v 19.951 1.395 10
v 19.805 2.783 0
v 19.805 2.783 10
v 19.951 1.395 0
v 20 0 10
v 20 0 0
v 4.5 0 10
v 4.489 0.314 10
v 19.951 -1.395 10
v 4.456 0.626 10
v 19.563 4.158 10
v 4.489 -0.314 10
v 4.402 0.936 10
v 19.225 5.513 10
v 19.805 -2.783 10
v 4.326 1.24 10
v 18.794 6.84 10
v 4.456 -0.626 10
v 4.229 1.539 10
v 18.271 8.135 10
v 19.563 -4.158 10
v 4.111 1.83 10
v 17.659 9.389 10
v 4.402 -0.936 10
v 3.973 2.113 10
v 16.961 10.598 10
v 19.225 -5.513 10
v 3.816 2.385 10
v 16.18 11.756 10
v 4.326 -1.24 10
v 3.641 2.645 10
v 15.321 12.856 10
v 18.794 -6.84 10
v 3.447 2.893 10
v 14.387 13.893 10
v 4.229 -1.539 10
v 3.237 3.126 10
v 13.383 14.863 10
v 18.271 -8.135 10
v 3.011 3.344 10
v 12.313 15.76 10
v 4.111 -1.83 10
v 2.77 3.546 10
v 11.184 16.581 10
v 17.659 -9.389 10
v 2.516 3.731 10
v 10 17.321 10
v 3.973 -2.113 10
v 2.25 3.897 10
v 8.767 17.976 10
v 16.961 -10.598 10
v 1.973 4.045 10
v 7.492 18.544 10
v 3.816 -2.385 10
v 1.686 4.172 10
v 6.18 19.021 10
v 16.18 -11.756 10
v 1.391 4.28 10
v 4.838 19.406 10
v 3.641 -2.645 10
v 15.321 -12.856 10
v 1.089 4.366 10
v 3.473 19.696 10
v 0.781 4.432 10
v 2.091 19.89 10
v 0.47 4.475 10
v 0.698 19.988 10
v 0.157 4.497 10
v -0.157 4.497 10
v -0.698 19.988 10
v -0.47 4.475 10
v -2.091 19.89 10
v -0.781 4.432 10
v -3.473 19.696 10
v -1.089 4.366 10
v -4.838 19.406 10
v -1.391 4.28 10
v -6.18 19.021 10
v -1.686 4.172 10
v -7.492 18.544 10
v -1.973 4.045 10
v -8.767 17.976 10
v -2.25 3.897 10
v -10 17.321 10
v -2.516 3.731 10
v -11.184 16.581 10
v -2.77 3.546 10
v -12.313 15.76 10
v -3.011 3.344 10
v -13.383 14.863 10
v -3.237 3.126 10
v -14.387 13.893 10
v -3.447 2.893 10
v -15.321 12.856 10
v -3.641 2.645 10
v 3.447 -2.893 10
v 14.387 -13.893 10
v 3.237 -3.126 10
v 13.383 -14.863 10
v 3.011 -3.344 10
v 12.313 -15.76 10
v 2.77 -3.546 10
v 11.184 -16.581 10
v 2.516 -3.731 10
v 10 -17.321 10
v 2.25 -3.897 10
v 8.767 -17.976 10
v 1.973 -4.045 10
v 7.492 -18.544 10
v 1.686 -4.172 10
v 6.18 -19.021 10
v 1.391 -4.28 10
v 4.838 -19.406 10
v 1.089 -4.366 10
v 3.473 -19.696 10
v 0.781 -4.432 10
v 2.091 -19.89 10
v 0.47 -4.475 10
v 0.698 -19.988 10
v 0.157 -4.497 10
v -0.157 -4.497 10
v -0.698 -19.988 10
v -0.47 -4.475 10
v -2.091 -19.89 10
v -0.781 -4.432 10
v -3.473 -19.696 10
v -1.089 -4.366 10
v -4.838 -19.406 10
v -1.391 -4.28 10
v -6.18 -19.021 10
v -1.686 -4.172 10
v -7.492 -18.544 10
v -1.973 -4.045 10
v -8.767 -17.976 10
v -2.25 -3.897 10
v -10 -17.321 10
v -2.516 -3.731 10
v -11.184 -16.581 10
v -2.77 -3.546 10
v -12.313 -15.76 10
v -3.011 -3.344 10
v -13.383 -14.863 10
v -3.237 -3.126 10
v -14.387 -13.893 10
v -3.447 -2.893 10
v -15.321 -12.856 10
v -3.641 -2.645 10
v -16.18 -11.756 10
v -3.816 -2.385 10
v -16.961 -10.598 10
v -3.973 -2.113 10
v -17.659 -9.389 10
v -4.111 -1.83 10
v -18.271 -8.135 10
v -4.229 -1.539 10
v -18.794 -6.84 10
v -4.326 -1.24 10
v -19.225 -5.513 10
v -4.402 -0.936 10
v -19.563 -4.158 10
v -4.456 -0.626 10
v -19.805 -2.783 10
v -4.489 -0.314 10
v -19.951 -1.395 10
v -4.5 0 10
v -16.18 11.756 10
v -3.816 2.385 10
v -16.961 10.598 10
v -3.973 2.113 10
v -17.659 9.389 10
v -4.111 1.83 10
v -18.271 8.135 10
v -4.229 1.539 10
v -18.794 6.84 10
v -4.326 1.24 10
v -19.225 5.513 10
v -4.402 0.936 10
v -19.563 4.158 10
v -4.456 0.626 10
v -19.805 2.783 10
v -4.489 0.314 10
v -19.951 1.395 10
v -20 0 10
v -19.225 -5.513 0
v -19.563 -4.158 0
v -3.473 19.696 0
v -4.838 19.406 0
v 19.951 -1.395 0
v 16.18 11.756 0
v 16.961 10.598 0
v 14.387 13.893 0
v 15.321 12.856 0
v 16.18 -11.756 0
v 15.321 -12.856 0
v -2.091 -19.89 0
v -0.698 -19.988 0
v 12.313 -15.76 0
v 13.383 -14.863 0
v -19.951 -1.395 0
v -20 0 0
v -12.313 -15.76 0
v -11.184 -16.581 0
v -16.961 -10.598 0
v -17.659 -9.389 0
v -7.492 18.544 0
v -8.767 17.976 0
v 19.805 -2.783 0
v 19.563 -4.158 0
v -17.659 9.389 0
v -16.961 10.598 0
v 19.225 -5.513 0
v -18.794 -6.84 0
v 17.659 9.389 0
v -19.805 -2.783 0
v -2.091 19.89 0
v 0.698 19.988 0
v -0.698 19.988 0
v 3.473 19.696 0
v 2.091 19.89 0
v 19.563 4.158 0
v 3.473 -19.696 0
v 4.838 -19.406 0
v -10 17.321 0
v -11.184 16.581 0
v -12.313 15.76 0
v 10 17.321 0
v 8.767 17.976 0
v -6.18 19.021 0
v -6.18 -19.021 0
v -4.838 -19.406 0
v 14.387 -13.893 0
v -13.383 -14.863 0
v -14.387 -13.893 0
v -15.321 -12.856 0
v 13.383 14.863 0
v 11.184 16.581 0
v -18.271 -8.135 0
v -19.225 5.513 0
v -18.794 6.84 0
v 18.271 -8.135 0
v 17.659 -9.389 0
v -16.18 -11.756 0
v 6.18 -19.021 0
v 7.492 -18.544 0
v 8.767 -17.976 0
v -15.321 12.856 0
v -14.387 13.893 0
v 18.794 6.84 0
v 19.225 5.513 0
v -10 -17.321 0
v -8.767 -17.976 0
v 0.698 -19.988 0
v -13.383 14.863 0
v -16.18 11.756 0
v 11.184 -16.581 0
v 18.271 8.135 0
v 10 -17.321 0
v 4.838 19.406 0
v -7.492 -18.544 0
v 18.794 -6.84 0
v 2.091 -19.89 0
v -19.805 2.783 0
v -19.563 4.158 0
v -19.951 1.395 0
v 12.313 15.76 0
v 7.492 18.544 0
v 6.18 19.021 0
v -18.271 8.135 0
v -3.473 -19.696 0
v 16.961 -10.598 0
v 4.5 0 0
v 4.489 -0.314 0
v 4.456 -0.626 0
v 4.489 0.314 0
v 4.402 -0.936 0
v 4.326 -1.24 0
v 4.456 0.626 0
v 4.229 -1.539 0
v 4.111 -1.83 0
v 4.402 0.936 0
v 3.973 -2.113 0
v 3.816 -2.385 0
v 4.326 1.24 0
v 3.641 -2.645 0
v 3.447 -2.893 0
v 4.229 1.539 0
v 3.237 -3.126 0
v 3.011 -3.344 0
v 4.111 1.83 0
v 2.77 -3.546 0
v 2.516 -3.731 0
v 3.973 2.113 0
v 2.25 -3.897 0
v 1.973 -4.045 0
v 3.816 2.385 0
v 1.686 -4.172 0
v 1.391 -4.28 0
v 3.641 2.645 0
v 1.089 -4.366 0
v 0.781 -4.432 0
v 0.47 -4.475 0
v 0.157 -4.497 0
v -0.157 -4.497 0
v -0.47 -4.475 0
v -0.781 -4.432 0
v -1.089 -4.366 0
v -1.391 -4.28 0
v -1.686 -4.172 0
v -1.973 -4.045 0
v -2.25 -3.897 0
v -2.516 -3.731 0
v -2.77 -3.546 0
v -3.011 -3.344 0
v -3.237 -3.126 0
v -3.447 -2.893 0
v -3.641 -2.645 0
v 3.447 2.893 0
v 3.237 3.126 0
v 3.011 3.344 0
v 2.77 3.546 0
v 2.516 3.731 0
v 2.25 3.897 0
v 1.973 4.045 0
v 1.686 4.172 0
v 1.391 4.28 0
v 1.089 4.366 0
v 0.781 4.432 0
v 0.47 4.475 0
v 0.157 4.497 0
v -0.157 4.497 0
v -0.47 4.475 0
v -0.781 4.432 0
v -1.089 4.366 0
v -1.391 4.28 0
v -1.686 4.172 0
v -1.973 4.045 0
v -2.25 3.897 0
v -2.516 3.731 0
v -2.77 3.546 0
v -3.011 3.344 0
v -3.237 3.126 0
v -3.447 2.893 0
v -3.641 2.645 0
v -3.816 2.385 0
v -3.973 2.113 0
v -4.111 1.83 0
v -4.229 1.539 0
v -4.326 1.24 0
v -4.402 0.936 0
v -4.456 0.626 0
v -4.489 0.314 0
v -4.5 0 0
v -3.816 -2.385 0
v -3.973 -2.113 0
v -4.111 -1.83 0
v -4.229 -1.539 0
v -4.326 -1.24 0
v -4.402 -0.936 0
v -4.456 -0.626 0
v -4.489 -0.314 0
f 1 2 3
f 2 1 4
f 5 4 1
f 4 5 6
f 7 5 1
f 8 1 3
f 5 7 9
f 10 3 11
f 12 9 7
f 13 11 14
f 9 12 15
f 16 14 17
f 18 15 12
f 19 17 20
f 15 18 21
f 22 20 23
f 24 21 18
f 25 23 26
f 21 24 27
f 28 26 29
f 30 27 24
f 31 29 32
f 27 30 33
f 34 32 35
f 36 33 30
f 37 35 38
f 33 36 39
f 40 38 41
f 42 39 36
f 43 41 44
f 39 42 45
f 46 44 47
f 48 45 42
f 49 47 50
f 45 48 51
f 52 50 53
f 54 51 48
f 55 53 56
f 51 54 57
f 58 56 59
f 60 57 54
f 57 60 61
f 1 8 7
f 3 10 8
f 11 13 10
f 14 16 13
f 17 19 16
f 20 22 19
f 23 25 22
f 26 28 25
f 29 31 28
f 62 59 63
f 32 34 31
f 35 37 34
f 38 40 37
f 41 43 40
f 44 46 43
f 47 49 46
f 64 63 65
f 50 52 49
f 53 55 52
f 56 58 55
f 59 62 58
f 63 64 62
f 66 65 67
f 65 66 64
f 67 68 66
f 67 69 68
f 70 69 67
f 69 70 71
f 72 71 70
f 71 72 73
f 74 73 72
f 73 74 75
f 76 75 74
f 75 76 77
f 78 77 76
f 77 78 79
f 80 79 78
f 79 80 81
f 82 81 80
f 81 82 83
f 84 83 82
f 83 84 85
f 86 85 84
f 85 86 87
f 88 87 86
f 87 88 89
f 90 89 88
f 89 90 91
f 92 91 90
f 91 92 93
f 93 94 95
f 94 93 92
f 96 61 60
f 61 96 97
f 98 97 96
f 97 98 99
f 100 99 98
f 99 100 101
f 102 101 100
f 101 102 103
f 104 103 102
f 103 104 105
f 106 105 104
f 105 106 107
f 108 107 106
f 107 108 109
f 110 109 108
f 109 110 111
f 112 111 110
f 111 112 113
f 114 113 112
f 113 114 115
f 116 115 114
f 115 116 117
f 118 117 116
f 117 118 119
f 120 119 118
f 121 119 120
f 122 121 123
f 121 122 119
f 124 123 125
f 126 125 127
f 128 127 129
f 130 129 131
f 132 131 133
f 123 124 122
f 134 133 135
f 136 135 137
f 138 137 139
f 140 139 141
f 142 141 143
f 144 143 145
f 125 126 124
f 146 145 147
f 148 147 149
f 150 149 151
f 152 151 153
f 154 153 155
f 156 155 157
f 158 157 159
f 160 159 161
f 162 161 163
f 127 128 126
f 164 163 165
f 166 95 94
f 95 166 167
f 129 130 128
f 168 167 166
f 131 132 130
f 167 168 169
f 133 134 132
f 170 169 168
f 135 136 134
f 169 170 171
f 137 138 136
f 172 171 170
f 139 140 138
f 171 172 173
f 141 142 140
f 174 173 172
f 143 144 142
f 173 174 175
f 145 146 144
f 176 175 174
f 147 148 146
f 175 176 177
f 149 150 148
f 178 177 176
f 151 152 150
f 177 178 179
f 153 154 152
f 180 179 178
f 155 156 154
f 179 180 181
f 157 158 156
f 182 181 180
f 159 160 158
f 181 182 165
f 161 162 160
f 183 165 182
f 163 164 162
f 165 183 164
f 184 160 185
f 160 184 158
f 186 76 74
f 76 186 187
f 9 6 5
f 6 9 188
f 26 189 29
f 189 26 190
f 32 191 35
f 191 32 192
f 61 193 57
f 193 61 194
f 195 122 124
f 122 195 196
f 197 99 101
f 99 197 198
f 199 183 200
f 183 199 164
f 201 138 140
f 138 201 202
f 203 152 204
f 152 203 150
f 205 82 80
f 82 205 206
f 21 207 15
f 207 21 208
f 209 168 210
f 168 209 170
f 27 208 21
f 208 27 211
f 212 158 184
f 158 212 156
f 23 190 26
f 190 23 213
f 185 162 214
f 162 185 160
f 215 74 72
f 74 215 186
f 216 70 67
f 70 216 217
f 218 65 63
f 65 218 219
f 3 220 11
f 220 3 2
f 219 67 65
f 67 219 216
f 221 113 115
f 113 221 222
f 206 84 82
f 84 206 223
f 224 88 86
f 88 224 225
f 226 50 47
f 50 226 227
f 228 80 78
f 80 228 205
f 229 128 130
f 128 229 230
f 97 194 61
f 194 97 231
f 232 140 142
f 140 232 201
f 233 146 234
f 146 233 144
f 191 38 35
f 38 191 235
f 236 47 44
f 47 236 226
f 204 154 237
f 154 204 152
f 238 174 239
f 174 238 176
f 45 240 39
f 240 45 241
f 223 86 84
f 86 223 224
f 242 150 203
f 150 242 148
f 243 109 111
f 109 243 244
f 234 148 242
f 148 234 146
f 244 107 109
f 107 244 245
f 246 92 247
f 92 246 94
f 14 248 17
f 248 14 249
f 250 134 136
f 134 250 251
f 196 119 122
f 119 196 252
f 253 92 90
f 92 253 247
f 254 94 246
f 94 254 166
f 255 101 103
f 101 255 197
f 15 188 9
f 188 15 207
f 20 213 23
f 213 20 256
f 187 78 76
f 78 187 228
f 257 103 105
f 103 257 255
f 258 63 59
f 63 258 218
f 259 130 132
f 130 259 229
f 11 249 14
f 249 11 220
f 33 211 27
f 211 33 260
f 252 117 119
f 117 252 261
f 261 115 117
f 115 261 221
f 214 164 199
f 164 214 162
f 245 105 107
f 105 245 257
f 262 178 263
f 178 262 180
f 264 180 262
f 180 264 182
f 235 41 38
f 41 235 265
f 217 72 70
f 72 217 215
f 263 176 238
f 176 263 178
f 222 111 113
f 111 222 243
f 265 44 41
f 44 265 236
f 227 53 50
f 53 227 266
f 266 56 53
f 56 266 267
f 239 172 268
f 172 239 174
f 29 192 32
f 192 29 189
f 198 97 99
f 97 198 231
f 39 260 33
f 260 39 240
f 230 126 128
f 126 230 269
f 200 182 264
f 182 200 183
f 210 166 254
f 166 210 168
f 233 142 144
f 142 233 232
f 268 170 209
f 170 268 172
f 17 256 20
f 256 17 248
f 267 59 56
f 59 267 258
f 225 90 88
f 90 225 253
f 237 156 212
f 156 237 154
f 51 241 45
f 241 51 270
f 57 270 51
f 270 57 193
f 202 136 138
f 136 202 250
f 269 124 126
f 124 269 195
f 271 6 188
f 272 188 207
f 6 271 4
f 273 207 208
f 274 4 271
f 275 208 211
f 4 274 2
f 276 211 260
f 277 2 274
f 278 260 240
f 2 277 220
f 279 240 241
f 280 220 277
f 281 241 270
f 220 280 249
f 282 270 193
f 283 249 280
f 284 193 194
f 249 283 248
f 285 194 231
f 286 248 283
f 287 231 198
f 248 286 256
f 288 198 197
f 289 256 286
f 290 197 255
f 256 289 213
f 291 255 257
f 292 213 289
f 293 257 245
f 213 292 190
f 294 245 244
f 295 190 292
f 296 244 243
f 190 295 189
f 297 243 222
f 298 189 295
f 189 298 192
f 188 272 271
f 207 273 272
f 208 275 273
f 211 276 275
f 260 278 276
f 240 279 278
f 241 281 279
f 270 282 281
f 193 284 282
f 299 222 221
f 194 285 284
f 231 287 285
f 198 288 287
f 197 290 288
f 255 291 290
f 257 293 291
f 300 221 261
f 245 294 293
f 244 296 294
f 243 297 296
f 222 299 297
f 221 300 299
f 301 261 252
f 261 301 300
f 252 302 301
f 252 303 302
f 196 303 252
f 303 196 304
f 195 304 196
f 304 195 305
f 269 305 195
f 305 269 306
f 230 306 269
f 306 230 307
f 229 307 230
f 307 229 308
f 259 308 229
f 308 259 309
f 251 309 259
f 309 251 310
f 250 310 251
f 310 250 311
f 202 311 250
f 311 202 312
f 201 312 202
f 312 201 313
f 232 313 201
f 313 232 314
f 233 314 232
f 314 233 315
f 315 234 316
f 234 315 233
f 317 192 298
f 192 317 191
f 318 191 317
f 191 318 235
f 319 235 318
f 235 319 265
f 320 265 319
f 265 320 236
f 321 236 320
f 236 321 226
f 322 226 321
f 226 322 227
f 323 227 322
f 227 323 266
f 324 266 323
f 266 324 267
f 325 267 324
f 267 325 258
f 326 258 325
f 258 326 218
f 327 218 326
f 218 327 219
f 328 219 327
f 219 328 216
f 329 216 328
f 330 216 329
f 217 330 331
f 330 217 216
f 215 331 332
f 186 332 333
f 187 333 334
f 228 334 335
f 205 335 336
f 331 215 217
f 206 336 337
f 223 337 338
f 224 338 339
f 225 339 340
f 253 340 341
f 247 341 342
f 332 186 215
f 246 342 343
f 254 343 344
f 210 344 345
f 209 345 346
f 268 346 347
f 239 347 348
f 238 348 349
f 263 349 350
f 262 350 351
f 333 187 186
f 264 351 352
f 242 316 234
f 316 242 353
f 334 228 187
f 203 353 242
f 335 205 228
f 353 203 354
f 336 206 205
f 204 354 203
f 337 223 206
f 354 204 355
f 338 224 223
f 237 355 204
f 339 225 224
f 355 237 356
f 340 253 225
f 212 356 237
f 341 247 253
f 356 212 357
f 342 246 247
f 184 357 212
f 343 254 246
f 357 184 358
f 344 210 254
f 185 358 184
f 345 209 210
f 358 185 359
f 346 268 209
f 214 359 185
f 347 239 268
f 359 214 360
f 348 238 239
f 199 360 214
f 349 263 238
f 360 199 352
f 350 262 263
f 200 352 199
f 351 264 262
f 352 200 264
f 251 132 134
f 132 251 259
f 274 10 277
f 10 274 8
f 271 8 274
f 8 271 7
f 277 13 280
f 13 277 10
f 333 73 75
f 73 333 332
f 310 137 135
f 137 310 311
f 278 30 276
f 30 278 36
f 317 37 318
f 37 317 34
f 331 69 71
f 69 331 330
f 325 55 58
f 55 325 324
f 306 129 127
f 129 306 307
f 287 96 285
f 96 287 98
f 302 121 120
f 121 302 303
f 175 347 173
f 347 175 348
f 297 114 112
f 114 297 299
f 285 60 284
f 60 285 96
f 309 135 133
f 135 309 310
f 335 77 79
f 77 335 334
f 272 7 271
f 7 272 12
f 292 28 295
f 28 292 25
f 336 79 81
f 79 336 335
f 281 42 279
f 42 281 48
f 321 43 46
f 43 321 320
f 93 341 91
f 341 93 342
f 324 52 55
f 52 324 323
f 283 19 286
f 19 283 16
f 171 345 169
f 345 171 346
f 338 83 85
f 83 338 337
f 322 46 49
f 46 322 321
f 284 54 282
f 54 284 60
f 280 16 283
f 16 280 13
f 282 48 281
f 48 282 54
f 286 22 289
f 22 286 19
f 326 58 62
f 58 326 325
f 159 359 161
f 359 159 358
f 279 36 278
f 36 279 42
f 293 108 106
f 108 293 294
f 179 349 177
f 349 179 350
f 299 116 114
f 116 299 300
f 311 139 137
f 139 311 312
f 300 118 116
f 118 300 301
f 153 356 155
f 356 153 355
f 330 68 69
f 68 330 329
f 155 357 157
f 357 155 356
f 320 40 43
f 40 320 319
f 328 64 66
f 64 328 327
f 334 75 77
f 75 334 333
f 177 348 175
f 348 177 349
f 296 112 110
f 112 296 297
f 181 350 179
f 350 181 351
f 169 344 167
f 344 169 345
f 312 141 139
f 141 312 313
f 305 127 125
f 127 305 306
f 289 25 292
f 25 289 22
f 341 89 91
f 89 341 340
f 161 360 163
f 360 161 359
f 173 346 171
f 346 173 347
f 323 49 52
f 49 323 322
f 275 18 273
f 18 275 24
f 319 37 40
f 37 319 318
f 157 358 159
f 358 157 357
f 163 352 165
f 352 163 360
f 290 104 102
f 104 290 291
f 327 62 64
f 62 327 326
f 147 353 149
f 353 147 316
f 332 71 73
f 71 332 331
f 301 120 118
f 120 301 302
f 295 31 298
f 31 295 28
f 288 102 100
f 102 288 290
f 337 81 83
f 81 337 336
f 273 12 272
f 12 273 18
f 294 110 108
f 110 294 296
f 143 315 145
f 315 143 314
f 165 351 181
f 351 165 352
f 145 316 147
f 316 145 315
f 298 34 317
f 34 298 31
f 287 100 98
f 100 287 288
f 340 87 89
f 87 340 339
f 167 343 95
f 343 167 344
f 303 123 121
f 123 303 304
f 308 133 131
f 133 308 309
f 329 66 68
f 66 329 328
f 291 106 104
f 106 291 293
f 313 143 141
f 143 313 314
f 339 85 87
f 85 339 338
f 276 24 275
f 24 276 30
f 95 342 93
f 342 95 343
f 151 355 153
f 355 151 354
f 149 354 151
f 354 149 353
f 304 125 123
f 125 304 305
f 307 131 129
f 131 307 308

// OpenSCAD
height = 10;
radius = 20;
bolt_radius = 4.5;
$fn = 90;

difference()
{
    cylinder(h = height, r = radius);
    cylinder(h = height, r = bolt_radius);
}
